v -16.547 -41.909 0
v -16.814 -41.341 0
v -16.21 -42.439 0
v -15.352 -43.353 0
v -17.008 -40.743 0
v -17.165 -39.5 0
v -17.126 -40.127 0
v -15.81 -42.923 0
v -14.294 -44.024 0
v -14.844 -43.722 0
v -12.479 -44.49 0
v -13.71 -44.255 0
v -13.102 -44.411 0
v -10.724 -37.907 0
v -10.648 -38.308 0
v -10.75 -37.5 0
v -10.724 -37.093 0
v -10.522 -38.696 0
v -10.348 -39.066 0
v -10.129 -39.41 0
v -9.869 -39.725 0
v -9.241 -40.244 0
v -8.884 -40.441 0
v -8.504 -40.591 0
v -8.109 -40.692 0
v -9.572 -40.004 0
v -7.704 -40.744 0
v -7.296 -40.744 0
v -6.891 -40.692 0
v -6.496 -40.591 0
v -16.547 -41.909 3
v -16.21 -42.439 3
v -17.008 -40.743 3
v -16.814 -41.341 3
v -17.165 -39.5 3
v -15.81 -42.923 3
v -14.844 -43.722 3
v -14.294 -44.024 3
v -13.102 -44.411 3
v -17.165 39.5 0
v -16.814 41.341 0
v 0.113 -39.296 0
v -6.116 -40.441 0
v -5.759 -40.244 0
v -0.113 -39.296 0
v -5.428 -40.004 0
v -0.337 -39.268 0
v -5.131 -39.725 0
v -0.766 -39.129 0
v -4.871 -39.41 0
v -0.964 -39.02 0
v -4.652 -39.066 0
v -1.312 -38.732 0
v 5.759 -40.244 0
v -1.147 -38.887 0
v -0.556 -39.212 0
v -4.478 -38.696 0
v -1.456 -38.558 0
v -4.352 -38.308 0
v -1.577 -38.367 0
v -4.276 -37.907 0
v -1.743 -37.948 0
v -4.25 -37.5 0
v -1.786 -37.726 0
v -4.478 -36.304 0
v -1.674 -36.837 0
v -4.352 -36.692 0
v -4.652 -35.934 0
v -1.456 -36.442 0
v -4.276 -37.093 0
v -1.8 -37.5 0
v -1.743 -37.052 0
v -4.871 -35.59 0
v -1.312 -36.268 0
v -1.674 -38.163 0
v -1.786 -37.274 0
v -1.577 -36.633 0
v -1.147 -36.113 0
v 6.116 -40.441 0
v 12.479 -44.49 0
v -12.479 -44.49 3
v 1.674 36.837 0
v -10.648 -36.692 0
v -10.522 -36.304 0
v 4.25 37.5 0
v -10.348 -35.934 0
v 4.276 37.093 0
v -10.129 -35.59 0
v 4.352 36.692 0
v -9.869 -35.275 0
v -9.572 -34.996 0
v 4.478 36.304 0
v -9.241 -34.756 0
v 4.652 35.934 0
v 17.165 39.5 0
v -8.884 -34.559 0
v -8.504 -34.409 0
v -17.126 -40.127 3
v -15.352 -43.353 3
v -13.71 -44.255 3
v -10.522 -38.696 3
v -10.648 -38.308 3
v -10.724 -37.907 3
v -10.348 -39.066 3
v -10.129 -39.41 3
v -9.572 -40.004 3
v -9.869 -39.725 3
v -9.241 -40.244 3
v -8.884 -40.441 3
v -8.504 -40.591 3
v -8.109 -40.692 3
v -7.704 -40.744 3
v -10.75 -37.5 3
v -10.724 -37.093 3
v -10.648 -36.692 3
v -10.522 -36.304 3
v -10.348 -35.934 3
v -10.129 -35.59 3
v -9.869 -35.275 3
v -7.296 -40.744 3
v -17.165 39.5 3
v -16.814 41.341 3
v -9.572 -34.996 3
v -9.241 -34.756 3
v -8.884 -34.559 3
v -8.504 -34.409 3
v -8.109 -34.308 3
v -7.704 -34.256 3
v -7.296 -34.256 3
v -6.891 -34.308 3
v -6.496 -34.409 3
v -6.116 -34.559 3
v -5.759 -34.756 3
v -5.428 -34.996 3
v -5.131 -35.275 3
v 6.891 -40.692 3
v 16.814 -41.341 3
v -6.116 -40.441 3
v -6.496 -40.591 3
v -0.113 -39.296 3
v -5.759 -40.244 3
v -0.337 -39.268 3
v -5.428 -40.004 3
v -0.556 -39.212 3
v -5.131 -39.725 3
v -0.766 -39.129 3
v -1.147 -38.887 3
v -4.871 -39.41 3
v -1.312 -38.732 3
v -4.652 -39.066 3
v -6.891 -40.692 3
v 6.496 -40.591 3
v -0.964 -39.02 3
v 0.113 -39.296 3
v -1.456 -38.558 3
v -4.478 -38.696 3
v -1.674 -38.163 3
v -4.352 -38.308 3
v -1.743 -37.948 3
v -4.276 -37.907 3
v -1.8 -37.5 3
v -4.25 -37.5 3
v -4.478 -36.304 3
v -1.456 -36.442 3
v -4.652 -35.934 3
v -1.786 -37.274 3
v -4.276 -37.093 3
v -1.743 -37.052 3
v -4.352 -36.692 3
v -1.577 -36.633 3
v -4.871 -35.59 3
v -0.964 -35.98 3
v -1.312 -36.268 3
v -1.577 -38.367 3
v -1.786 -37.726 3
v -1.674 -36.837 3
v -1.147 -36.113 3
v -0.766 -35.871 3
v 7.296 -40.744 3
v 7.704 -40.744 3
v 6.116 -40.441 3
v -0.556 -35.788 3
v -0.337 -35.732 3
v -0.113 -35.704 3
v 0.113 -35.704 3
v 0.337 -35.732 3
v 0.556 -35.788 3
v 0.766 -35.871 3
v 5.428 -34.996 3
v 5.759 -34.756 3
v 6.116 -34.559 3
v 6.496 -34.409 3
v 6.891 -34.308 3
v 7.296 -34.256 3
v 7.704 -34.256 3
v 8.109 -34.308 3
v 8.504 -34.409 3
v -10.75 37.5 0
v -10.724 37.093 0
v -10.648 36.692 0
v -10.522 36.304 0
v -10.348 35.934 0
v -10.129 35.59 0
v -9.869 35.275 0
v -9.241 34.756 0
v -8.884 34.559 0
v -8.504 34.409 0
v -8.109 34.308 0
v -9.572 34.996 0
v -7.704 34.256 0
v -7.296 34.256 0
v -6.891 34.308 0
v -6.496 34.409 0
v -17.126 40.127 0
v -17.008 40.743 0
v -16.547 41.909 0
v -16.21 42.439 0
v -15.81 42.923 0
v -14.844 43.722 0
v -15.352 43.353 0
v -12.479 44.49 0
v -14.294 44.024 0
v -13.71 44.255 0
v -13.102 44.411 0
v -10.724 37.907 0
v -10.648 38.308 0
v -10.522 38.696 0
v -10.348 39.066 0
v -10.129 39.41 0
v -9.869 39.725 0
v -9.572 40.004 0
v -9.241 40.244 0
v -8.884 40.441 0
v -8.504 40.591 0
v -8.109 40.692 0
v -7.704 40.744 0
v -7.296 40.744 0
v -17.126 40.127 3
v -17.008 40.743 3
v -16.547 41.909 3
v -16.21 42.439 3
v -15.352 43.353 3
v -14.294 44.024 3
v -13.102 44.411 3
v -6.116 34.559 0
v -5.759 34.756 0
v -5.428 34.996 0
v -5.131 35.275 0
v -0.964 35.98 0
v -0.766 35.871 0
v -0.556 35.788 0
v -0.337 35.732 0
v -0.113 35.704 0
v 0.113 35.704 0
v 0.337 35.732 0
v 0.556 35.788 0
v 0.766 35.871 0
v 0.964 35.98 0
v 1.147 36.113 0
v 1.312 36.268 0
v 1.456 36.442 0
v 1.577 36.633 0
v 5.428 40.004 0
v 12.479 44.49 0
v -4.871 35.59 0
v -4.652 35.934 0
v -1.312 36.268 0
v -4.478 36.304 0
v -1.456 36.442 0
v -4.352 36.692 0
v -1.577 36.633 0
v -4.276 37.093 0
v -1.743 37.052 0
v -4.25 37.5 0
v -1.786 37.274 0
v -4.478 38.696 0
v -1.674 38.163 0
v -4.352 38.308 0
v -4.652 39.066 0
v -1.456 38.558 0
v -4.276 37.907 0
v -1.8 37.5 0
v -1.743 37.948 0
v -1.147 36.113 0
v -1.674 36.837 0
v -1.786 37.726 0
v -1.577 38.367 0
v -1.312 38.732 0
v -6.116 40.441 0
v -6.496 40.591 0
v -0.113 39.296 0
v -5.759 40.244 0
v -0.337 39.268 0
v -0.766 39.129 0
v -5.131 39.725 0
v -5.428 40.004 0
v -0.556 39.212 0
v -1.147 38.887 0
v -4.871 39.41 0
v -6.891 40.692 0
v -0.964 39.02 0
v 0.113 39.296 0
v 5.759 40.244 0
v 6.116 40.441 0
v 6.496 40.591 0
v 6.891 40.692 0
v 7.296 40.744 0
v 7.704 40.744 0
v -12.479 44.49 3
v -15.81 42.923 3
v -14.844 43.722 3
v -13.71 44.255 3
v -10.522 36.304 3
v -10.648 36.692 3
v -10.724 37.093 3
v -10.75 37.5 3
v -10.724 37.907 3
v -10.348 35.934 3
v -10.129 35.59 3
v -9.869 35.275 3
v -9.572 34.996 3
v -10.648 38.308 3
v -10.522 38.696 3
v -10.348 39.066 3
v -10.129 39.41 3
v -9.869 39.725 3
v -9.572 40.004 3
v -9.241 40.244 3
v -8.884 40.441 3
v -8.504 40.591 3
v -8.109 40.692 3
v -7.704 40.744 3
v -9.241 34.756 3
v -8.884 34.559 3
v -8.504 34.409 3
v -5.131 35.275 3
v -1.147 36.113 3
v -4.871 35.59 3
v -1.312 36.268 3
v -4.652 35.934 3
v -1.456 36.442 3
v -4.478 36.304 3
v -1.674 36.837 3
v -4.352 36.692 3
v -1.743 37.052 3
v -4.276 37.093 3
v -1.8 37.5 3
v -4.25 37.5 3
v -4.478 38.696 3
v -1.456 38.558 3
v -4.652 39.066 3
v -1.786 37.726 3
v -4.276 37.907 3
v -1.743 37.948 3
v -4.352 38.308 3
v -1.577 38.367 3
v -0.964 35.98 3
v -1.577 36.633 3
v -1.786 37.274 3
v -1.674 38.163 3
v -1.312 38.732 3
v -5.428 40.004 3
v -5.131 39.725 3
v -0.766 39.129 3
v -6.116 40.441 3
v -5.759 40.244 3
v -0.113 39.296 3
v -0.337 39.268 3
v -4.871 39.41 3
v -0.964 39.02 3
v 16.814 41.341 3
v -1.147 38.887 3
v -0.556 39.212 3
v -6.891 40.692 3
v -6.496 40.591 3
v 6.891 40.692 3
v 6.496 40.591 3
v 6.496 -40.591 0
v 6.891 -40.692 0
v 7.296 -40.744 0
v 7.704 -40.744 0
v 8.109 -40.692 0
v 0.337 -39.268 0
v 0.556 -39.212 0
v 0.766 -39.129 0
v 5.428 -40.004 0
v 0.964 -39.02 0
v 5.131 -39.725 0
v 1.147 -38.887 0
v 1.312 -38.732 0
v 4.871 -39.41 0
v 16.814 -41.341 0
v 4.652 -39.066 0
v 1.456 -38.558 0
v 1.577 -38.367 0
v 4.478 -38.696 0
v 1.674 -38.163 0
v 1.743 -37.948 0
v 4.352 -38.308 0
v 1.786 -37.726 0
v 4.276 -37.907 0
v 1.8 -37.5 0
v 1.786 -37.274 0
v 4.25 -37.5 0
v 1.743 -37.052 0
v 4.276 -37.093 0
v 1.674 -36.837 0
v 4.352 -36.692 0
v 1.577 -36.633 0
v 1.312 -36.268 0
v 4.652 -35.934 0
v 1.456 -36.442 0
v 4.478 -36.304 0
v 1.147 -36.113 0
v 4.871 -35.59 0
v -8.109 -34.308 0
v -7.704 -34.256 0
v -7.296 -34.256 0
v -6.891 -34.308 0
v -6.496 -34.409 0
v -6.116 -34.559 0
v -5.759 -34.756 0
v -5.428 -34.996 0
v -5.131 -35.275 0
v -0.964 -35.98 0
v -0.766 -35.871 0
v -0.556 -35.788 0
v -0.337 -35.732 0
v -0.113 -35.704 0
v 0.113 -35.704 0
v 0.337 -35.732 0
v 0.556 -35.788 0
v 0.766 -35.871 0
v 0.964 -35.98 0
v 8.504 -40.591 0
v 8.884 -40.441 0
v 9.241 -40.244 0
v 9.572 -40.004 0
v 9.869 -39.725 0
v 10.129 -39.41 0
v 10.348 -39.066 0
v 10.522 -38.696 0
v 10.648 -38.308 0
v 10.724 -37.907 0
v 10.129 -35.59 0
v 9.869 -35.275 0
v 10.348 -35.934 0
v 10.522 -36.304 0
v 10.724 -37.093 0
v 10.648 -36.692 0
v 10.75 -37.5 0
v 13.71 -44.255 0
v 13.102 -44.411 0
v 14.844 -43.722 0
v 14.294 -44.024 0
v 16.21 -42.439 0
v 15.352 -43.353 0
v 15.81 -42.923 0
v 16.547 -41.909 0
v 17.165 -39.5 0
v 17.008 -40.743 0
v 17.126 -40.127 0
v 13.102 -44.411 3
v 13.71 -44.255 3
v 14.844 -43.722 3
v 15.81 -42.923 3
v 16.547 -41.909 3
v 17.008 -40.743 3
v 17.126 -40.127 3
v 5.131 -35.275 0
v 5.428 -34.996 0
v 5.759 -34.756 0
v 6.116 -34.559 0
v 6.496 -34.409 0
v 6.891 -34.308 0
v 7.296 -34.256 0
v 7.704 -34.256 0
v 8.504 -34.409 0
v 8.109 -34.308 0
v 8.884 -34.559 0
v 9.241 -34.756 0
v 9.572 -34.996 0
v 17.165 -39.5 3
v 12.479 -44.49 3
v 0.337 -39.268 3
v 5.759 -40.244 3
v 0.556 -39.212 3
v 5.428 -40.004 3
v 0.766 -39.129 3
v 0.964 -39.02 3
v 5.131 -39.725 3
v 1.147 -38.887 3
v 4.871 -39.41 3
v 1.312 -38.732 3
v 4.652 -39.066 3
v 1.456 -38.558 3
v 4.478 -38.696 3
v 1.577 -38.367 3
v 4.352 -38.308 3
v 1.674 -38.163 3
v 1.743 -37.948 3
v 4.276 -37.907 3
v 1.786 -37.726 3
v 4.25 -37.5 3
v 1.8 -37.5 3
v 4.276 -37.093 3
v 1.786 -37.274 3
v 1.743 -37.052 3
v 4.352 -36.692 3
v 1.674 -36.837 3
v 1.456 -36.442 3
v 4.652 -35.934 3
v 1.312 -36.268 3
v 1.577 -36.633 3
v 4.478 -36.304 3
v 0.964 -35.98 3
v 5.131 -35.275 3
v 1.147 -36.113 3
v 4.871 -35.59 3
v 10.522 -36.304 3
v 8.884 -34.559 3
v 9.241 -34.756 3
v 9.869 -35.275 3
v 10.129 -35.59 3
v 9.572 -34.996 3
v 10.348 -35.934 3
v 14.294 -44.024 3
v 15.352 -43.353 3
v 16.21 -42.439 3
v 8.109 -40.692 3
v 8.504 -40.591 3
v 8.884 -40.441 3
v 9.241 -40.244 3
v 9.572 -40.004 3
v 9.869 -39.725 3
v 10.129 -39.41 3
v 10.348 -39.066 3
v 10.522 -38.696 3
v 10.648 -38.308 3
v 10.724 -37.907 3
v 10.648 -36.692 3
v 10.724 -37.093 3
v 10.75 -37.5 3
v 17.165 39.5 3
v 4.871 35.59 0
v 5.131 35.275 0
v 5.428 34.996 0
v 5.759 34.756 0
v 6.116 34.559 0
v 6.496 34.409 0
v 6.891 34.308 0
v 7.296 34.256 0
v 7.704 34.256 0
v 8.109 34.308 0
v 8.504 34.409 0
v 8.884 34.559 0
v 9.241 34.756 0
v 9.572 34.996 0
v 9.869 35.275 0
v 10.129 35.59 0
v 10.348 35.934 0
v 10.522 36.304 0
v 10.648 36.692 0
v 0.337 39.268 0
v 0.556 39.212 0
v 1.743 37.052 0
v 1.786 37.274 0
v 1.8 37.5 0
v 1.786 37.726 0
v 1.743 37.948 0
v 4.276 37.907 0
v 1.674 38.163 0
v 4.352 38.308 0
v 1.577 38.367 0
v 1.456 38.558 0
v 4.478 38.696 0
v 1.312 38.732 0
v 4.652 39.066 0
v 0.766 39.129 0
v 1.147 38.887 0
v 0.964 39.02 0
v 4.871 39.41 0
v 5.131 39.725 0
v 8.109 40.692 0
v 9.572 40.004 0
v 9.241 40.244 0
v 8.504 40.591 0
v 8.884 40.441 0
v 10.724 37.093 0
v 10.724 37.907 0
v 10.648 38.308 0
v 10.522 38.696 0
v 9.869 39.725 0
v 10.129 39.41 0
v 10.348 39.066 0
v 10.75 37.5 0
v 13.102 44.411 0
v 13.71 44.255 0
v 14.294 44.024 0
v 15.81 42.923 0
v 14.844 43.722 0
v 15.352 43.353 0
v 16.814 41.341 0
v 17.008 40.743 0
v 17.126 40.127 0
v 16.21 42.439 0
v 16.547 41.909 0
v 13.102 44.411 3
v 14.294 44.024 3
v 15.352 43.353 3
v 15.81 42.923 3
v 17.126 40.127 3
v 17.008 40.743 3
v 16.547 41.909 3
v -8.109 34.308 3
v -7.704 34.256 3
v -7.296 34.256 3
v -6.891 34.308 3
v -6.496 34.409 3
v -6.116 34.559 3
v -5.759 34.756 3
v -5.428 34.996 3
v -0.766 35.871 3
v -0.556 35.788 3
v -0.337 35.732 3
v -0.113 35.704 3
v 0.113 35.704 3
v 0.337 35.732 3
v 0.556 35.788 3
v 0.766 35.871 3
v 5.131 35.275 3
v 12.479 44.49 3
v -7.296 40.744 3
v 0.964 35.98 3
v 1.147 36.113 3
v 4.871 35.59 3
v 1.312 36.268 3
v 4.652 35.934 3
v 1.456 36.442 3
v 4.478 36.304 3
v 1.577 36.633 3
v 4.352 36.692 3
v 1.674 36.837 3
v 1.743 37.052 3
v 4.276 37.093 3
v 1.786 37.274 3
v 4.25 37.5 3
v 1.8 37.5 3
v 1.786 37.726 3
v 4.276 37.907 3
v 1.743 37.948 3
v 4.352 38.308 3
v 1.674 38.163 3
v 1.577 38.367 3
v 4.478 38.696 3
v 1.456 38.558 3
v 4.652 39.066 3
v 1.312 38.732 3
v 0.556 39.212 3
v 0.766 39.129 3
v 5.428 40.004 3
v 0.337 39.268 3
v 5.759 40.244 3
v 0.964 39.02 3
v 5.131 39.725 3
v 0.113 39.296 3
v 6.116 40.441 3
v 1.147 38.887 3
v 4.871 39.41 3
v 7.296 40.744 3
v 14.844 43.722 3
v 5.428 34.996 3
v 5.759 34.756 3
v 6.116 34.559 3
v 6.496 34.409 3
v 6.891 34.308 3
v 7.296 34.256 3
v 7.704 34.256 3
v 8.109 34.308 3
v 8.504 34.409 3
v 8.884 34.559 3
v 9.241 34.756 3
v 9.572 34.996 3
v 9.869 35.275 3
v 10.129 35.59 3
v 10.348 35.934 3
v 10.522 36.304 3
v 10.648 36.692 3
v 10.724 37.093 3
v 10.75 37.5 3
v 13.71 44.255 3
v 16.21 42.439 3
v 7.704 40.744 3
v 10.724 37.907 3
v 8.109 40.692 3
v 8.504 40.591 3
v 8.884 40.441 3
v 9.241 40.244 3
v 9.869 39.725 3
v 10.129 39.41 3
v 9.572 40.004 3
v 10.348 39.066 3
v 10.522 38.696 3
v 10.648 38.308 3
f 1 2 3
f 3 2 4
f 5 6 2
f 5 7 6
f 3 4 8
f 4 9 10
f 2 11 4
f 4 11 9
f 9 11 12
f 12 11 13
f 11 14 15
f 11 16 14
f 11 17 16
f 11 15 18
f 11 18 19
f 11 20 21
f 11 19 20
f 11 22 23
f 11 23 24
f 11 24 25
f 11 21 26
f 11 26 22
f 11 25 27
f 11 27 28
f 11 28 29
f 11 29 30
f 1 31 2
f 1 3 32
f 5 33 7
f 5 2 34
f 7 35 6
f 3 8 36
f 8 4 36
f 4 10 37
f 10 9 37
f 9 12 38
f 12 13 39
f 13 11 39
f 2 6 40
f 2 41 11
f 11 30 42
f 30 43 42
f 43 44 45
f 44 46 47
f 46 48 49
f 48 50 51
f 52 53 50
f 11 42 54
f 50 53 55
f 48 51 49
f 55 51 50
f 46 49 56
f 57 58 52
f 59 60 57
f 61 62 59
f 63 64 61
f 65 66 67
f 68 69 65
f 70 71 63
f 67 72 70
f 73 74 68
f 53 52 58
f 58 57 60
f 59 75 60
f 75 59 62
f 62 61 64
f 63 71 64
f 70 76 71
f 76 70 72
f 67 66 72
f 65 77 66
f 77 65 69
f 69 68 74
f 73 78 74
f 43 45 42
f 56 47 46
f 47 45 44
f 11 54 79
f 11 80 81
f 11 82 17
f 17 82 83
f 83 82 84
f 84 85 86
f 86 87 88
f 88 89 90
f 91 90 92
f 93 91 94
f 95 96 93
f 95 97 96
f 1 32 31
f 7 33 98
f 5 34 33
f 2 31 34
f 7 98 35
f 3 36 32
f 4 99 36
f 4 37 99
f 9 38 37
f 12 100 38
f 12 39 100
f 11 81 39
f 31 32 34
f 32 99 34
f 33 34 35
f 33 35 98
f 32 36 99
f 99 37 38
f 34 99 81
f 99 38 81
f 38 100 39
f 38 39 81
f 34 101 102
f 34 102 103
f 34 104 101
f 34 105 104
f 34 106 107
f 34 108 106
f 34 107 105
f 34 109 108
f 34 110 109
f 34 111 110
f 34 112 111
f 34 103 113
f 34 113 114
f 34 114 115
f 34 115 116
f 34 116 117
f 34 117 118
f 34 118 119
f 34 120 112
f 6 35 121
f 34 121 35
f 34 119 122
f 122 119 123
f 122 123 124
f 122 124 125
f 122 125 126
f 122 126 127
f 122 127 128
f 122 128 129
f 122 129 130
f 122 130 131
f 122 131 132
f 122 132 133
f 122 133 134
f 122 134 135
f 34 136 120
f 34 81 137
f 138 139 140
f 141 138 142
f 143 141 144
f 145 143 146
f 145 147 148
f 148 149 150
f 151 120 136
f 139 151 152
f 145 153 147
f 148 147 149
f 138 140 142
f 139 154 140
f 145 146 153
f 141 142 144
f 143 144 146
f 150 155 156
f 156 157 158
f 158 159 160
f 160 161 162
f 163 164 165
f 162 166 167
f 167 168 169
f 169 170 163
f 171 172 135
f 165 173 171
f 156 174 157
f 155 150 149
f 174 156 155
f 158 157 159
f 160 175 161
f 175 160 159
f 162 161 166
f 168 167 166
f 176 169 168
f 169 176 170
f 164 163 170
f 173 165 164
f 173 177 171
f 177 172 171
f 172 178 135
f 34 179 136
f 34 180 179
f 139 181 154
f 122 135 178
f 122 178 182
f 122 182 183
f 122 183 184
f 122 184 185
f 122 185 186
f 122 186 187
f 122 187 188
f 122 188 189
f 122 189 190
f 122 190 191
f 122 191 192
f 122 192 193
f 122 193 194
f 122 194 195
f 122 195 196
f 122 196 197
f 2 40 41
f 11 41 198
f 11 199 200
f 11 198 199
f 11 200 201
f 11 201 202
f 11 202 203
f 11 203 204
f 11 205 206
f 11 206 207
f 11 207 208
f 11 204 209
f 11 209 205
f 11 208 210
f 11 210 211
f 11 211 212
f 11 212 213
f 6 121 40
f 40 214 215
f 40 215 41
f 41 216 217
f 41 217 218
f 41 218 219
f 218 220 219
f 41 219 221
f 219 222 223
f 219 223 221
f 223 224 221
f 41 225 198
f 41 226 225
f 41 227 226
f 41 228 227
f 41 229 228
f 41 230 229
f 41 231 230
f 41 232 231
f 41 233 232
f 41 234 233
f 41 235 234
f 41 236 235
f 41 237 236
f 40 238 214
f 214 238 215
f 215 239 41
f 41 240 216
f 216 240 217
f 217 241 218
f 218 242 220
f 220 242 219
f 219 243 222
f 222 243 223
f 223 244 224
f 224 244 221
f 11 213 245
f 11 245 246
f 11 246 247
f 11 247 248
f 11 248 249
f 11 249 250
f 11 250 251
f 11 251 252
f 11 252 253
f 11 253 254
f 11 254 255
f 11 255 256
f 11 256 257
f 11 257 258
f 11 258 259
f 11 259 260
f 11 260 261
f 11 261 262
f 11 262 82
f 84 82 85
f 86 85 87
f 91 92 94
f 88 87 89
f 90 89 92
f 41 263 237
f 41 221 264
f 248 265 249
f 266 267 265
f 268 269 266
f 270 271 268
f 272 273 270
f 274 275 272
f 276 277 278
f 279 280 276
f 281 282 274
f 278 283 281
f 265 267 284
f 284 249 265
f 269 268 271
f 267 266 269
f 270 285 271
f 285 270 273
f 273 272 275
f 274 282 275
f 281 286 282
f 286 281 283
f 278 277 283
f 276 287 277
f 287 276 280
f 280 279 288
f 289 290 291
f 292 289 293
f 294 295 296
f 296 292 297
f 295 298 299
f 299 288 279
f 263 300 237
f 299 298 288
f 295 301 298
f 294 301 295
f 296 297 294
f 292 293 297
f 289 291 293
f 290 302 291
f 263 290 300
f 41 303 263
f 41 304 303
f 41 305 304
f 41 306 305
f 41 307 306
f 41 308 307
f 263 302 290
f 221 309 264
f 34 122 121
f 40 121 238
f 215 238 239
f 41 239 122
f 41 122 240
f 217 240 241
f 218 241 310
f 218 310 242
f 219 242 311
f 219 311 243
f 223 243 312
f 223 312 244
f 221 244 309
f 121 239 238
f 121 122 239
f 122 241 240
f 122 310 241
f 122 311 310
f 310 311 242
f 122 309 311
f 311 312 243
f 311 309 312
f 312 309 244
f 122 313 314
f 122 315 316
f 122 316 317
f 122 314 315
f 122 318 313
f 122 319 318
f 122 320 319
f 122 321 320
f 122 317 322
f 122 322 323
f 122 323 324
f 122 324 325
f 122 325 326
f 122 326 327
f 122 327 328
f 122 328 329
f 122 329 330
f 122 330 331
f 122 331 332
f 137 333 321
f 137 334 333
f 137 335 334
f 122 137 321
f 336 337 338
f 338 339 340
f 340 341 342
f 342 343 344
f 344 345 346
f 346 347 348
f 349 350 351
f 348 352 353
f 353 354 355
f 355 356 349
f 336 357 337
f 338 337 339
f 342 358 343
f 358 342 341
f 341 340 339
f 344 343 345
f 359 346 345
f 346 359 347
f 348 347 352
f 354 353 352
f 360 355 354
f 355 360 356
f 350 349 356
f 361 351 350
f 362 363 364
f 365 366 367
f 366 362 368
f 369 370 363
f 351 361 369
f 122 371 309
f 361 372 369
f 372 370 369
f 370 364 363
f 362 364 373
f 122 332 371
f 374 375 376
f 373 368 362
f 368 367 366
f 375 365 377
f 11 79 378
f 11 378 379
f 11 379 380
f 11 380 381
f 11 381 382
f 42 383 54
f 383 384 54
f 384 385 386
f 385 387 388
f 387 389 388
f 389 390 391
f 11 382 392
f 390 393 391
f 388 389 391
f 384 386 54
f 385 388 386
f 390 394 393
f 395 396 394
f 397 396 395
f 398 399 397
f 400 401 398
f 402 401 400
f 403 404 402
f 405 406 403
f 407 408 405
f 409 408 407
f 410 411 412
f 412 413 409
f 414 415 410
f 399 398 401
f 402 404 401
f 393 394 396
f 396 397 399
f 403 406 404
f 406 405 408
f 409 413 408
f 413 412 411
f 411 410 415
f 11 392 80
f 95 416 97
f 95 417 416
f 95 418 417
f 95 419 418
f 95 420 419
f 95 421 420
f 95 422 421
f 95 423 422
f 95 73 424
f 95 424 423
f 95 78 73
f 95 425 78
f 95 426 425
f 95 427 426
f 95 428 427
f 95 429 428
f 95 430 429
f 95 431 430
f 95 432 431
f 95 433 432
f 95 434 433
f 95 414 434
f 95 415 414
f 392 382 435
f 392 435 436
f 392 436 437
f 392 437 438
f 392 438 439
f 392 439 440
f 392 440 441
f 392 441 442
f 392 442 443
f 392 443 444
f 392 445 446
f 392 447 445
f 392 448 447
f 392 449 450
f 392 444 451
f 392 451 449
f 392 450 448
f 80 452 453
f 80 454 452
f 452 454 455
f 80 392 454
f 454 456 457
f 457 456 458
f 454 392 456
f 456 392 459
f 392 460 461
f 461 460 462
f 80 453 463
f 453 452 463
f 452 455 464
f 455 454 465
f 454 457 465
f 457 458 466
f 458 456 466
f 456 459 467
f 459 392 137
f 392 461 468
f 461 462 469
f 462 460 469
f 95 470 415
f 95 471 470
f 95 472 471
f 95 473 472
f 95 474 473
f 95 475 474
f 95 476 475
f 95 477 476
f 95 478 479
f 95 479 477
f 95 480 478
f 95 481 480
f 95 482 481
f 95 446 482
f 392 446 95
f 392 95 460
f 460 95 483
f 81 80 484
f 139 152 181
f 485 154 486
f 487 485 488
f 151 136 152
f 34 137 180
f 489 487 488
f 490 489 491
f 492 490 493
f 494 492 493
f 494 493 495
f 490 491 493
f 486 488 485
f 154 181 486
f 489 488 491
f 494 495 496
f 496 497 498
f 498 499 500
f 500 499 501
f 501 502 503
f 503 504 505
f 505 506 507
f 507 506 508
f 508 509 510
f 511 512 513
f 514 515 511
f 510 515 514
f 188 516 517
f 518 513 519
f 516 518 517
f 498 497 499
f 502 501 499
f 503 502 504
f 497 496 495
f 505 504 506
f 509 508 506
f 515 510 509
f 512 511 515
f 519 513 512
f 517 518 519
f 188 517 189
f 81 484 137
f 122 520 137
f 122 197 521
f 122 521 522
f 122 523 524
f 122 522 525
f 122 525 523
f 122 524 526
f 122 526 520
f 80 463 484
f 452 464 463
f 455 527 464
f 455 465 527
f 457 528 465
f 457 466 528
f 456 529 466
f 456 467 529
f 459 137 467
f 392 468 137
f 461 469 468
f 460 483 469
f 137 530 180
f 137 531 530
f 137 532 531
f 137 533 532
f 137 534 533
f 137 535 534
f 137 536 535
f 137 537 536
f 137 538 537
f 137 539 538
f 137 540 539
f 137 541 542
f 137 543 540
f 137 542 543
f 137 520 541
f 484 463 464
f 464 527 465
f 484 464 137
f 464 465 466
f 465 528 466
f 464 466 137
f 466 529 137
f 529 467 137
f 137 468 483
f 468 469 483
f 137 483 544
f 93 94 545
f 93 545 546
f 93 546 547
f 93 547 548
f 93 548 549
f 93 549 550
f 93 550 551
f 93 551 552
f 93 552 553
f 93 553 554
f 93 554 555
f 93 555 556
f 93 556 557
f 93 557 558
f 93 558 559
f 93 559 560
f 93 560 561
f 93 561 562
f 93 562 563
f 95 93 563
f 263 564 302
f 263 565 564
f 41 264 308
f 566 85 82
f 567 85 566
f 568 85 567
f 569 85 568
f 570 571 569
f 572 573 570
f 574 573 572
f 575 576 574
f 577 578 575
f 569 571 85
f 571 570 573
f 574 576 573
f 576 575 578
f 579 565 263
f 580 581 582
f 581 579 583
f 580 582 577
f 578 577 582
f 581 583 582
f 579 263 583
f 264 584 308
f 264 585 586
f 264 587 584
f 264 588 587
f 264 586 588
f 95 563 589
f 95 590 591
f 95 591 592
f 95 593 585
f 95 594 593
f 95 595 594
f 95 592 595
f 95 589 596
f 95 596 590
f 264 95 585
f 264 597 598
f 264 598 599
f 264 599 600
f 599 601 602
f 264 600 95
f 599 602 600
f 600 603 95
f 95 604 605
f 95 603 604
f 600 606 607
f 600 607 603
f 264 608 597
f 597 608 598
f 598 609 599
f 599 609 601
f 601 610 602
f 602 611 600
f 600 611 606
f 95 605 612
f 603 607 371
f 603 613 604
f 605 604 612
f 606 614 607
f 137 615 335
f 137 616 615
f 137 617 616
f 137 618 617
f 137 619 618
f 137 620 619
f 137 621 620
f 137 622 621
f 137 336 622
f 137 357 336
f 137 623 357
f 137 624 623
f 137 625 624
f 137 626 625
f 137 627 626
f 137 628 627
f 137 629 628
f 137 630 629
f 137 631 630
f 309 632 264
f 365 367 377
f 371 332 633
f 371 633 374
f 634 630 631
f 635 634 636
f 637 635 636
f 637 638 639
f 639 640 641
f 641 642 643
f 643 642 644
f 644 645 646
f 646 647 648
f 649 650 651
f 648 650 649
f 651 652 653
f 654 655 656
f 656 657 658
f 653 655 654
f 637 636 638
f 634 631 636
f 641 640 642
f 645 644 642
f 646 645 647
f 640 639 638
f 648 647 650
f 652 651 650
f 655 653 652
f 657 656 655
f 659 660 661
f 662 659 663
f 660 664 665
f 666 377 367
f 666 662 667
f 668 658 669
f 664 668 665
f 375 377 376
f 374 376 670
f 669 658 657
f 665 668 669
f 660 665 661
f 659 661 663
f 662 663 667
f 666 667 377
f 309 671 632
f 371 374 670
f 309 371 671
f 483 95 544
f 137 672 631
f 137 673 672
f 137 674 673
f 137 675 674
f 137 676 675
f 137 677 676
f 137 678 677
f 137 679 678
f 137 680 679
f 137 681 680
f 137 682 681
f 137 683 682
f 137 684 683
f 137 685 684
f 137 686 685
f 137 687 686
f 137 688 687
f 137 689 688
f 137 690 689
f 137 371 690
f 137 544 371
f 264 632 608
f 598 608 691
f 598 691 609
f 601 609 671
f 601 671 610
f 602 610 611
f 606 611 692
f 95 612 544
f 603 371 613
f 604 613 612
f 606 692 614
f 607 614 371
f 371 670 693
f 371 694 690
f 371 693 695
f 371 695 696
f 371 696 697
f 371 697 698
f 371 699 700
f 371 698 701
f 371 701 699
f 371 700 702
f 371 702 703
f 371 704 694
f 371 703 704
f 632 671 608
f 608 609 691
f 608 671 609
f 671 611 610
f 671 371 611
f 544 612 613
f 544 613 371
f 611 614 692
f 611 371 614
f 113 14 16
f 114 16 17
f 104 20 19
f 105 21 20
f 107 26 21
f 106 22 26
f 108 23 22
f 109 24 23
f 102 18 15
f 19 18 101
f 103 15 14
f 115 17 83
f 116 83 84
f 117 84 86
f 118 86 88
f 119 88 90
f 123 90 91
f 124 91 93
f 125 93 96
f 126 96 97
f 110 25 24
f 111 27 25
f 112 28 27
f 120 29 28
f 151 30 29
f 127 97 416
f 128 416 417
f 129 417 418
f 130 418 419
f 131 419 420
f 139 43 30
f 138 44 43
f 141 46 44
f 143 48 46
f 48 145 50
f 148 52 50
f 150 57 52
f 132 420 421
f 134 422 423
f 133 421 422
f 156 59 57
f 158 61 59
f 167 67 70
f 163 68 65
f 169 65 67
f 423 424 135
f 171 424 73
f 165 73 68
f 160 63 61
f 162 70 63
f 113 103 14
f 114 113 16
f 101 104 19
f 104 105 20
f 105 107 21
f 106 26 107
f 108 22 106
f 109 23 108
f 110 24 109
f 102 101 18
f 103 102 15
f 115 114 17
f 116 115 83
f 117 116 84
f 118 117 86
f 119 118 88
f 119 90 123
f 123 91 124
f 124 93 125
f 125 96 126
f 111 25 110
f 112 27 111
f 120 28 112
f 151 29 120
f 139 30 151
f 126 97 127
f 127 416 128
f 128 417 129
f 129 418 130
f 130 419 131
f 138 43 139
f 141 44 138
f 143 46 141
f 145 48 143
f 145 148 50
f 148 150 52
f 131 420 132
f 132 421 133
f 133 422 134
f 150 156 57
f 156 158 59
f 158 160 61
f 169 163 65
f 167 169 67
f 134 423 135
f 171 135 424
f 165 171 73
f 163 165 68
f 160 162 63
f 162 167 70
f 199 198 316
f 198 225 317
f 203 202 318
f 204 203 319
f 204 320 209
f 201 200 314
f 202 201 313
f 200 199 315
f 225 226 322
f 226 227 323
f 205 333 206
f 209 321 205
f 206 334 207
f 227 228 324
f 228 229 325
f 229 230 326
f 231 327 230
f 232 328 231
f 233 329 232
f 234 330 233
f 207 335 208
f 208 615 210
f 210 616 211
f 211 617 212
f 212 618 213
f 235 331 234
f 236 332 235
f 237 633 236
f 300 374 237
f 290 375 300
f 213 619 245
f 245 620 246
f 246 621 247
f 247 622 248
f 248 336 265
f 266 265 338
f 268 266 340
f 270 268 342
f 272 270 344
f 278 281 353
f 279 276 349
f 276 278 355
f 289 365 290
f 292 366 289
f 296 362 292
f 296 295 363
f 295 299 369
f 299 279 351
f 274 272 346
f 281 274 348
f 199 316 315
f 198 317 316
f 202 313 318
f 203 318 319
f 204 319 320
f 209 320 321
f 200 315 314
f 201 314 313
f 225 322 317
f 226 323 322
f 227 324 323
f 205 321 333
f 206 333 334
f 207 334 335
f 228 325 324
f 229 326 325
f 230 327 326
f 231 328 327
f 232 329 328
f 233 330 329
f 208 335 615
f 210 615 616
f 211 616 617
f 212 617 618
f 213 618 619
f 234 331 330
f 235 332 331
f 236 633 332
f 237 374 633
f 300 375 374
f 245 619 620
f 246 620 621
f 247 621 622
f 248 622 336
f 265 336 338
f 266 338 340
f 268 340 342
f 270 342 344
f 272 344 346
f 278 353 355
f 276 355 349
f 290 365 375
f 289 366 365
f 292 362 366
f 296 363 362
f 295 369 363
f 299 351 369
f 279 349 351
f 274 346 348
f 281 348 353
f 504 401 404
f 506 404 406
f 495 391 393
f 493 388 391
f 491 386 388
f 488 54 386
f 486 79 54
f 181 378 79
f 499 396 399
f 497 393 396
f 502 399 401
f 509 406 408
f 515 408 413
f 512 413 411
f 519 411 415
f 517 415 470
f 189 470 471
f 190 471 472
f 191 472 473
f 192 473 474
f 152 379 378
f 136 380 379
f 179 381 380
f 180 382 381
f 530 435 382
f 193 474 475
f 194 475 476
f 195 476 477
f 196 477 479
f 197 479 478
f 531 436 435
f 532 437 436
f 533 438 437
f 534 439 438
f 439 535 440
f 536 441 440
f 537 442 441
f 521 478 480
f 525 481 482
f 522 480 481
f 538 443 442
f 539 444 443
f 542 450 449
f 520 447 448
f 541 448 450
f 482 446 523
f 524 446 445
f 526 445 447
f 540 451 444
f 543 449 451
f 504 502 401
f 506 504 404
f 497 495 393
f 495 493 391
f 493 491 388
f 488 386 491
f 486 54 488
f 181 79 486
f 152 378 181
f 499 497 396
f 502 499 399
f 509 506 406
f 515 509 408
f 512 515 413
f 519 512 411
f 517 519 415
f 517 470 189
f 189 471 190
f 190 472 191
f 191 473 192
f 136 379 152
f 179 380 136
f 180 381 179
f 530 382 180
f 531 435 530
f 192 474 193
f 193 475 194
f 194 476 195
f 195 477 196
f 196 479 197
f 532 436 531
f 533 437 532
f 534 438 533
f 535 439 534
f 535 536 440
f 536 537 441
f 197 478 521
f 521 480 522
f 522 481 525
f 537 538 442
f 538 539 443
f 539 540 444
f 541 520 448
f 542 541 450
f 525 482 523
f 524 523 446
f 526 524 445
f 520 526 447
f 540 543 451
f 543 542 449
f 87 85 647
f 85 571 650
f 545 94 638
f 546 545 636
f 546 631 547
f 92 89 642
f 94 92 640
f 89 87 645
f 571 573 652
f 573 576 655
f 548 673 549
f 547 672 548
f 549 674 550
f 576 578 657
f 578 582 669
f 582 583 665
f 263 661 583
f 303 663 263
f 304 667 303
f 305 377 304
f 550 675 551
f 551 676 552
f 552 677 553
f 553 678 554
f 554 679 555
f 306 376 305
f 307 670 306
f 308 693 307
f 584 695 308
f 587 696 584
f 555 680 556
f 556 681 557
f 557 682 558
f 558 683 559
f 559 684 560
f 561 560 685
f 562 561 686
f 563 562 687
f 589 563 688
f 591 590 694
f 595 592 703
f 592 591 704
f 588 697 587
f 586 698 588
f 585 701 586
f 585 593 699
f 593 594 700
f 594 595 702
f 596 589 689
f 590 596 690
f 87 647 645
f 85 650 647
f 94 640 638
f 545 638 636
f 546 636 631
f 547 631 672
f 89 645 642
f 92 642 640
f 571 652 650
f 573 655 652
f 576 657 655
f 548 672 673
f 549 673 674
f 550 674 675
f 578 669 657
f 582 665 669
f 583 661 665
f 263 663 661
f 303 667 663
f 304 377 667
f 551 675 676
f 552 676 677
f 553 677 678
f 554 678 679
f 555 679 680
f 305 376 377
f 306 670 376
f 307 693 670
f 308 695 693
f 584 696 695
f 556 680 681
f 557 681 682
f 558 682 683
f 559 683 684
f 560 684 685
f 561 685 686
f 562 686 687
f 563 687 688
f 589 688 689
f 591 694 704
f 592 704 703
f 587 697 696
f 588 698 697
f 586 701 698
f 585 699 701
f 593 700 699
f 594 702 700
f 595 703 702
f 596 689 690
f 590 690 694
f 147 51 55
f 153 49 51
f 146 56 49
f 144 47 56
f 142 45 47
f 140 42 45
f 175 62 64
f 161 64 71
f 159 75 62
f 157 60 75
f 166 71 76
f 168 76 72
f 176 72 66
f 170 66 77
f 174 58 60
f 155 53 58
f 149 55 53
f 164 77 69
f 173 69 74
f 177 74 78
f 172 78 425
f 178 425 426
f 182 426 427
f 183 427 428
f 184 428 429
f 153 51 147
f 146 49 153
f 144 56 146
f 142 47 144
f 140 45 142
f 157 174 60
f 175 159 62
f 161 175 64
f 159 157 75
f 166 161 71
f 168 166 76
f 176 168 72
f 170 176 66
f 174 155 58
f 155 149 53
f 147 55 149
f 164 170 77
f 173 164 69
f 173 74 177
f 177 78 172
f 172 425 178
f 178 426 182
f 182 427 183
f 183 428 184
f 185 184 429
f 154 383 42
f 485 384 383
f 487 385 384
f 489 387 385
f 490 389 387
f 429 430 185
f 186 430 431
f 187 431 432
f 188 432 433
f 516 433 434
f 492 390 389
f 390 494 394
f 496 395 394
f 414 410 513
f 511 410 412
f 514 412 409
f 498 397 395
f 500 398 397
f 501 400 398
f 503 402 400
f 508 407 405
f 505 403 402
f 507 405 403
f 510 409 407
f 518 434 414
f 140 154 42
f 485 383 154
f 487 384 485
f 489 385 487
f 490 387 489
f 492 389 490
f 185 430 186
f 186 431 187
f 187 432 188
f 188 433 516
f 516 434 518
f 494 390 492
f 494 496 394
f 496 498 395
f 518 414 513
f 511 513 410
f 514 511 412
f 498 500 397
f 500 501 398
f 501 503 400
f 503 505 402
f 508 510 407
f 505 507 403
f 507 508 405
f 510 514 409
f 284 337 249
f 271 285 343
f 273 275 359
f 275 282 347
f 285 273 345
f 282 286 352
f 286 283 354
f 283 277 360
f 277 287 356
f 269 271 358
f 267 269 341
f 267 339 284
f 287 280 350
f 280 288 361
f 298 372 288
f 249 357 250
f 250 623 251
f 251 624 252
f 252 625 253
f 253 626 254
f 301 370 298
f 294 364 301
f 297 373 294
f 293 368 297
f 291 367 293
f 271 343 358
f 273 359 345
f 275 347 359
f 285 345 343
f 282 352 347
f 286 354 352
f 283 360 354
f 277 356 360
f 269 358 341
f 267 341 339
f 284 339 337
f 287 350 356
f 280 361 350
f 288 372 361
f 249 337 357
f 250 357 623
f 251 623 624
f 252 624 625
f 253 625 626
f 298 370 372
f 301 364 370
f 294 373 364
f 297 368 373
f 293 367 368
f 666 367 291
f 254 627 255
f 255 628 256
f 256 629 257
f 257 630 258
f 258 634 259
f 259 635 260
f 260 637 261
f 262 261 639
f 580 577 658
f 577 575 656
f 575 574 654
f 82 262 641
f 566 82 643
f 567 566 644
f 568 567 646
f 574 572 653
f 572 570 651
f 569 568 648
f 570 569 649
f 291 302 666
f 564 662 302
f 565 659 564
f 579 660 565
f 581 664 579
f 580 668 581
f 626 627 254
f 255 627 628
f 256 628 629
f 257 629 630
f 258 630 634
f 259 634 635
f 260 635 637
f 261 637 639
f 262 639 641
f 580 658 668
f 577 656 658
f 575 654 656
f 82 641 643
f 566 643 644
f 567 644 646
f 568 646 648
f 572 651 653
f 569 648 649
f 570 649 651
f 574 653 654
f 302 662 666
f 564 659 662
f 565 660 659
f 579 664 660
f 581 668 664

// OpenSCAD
$fn = 50;

difference() {
	union() {
		hull() {
			translate(v = [-12.165, 39.5, 0]) {
				cylinder(h = 3, r = 5);
			}
			translate(v = [12.165, 39.5, 0]) {
				cylinder(h = 3, r = 5);
			}
			translate(v = [-12.165, -39.5, 0]) {
				cylinder(h = 3, r = 5);
			}
			translate(v = [12.165, -39.5, 0]) {
				cylinder(h = 3, r = 5);
			}
		}
	}
	union() {
		translate(v = [-7.5, -37.5, -1]) {
			cylinder(h = 5, r = 3.25);
		}
		translate(v = [-7.5, 37.5, -1]) {
			cylinder(h = 5, r = 3.25);
		}
		translate(v = [7.5, -37.5, -1]) {
			cylinder(h = 5, r = 3.25);
		}
		translate(v = [7.5, 37.5, -1]) {
			cylinder(h = 5, r = 3.25);
		}
		translate(v = [0.0, -37.5, -1]) {
			cylinder(h = 5, r = 1.8);
		}
		translate(v = [0.0, 37.5, -1]) {
			cylinder(h = 5, r = 1.8);
		}
	}
}
